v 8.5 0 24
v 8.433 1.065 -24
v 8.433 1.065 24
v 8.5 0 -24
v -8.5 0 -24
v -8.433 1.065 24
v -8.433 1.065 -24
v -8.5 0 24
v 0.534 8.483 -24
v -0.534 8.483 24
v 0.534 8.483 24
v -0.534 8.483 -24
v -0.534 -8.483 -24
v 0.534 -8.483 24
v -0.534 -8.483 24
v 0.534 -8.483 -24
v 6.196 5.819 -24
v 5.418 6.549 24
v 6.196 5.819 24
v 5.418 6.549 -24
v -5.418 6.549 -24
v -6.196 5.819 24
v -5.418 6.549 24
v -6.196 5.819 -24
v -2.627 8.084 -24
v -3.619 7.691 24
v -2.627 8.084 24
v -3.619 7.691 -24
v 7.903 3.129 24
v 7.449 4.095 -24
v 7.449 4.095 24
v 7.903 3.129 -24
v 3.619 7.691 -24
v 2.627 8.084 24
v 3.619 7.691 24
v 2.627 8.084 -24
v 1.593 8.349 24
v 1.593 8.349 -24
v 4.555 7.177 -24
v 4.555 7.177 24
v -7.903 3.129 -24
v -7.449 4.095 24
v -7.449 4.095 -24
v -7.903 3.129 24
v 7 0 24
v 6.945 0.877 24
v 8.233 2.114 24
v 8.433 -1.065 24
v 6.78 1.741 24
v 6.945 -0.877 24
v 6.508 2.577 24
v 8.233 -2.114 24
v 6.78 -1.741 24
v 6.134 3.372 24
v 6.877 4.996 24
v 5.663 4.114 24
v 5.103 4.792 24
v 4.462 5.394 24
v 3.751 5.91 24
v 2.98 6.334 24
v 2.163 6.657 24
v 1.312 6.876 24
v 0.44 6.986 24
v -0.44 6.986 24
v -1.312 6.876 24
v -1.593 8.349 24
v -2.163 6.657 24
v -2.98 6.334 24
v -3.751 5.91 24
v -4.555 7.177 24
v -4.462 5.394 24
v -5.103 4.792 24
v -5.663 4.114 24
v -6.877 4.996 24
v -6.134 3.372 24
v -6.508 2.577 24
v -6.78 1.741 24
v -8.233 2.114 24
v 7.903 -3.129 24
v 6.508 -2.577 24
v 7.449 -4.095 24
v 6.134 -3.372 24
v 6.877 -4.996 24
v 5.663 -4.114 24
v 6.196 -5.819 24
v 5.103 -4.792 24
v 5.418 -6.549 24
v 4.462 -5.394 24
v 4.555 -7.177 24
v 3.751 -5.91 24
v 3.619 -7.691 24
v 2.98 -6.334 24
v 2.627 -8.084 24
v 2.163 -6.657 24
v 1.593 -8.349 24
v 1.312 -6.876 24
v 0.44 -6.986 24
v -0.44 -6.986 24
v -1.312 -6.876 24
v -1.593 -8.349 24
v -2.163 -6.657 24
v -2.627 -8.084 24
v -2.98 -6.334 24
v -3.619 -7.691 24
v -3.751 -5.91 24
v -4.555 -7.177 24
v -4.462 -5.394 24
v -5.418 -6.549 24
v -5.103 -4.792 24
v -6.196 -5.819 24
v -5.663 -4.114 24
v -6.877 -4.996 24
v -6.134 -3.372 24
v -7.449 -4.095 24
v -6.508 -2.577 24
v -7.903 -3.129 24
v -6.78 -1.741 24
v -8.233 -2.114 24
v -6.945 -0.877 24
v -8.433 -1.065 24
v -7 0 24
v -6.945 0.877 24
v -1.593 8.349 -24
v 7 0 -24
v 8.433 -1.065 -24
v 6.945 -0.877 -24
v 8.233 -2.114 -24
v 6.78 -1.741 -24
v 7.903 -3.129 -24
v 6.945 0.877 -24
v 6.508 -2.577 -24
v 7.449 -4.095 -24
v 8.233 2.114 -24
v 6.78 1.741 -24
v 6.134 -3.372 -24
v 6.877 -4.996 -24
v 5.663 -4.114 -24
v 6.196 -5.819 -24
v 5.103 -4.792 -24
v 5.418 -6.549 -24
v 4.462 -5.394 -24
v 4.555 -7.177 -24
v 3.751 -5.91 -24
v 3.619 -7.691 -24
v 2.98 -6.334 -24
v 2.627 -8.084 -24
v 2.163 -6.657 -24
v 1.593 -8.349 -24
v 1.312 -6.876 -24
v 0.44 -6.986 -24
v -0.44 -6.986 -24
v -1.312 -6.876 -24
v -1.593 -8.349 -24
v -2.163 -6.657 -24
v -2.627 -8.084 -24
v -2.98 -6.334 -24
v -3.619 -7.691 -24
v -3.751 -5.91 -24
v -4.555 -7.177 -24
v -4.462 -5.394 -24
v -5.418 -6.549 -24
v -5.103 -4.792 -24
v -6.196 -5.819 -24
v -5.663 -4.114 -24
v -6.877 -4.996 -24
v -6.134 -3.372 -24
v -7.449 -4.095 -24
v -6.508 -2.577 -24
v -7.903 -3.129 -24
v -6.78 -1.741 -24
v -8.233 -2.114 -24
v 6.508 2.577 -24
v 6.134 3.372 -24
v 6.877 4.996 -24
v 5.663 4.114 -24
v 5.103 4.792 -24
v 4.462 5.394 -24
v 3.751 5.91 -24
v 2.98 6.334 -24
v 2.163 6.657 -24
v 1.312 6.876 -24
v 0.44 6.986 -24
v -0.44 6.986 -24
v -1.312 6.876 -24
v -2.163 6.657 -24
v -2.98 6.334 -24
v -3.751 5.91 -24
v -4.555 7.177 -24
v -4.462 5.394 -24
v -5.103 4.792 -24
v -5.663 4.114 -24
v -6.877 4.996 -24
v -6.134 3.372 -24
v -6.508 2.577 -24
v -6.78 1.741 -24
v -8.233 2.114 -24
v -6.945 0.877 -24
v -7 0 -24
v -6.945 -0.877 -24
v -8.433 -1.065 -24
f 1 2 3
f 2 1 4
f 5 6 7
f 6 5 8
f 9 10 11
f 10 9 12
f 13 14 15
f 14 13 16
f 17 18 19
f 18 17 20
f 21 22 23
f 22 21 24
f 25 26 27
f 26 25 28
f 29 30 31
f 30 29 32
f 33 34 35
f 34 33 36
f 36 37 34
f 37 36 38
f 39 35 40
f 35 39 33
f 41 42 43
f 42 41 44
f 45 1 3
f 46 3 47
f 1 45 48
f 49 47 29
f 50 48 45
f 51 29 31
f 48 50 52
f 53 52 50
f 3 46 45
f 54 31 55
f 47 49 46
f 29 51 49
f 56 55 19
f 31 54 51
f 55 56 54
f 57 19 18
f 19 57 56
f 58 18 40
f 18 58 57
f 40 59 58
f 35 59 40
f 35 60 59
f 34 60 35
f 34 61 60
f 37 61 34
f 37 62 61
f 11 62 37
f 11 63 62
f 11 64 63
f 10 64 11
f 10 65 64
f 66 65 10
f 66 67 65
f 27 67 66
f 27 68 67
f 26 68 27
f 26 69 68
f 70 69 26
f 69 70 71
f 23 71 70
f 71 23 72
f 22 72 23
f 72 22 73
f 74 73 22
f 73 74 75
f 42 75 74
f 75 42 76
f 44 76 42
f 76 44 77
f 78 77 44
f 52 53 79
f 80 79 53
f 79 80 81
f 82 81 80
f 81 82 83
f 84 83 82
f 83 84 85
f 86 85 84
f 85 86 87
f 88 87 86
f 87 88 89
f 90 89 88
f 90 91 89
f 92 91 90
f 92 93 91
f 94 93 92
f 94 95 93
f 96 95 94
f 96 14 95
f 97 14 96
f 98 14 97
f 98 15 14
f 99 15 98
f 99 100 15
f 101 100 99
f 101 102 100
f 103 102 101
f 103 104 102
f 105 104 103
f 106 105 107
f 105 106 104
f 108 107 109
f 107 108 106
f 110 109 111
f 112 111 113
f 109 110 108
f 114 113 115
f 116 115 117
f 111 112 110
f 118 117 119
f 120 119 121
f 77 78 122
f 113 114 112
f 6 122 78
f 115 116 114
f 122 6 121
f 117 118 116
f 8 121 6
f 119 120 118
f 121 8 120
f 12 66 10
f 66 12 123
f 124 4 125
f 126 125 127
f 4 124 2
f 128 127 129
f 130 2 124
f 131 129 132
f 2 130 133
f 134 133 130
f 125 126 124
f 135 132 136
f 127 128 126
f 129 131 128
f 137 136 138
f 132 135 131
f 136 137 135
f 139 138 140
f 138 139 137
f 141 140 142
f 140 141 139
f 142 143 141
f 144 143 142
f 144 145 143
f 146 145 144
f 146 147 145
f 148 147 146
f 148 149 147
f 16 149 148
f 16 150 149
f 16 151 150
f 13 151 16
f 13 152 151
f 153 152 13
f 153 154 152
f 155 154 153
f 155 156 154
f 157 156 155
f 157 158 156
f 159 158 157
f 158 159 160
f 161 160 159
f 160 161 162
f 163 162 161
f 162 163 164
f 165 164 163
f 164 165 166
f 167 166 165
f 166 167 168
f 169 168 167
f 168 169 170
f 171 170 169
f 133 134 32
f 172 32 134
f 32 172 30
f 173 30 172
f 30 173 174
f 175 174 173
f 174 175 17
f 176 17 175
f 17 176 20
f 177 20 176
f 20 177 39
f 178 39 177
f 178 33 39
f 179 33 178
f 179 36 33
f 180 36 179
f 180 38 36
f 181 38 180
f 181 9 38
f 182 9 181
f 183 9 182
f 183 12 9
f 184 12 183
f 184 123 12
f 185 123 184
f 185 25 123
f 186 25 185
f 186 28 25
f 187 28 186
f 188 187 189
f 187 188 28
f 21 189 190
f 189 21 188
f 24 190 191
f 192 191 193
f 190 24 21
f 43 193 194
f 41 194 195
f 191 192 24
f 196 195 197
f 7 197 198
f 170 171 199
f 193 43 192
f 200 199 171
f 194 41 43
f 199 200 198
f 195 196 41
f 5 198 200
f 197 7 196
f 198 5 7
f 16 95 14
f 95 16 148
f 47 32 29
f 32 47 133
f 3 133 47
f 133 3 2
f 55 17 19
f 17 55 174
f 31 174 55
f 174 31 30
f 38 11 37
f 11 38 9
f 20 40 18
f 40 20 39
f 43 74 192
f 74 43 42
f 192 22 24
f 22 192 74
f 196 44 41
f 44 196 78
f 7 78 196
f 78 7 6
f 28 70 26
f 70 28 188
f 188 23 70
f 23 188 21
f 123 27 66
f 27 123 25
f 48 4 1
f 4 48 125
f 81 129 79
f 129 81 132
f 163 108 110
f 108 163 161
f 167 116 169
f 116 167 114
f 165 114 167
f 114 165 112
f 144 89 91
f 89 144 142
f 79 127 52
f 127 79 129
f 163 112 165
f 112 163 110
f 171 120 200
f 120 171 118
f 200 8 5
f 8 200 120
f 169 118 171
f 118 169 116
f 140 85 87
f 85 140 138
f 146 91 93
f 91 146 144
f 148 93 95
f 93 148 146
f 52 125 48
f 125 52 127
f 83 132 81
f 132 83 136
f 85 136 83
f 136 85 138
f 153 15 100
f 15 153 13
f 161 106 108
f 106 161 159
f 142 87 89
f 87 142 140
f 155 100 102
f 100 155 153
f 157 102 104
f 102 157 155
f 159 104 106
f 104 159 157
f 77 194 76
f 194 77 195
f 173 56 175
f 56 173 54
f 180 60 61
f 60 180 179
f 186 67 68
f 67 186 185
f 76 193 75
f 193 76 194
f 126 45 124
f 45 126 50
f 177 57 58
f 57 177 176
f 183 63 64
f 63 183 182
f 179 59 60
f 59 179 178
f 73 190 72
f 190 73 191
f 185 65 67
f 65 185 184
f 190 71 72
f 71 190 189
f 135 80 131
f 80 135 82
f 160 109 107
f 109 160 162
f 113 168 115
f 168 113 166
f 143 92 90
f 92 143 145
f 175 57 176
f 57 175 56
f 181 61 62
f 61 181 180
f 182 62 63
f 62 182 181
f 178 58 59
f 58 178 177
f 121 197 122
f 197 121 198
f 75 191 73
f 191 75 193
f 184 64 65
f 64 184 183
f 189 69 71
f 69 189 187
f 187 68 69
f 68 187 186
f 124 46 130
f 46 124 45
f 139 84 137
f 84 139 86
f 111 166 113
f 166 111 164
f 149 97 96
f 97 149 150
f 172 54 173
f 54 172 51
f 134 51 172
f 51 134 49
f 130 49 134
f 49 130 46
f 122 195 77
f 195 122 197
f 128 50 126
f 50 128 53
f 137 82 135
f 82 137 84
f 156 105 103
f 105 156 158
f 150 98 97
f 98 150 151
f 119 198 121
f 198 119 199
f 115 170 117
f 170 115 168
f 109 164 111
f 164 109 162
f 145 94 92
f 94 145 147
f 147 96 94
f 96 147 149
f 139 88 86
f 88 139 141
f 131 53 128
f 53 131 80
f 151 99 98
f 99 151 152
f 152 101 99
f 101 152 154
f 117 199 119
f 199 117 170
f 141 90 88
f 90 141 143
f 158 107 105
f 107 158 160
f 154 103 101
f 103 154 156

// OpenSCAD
$fn = 50;


difference() {
	union() {
		translate(v = [0, 0, -24.0000000000]) {
			cylinder(h = 48, r = 8.5000000000);
		}
	}
	union() {
		translate(v = [0, 0, -100.0000000000]) {
			cylinder(h = 200, r = 7);
		}
	}
}
